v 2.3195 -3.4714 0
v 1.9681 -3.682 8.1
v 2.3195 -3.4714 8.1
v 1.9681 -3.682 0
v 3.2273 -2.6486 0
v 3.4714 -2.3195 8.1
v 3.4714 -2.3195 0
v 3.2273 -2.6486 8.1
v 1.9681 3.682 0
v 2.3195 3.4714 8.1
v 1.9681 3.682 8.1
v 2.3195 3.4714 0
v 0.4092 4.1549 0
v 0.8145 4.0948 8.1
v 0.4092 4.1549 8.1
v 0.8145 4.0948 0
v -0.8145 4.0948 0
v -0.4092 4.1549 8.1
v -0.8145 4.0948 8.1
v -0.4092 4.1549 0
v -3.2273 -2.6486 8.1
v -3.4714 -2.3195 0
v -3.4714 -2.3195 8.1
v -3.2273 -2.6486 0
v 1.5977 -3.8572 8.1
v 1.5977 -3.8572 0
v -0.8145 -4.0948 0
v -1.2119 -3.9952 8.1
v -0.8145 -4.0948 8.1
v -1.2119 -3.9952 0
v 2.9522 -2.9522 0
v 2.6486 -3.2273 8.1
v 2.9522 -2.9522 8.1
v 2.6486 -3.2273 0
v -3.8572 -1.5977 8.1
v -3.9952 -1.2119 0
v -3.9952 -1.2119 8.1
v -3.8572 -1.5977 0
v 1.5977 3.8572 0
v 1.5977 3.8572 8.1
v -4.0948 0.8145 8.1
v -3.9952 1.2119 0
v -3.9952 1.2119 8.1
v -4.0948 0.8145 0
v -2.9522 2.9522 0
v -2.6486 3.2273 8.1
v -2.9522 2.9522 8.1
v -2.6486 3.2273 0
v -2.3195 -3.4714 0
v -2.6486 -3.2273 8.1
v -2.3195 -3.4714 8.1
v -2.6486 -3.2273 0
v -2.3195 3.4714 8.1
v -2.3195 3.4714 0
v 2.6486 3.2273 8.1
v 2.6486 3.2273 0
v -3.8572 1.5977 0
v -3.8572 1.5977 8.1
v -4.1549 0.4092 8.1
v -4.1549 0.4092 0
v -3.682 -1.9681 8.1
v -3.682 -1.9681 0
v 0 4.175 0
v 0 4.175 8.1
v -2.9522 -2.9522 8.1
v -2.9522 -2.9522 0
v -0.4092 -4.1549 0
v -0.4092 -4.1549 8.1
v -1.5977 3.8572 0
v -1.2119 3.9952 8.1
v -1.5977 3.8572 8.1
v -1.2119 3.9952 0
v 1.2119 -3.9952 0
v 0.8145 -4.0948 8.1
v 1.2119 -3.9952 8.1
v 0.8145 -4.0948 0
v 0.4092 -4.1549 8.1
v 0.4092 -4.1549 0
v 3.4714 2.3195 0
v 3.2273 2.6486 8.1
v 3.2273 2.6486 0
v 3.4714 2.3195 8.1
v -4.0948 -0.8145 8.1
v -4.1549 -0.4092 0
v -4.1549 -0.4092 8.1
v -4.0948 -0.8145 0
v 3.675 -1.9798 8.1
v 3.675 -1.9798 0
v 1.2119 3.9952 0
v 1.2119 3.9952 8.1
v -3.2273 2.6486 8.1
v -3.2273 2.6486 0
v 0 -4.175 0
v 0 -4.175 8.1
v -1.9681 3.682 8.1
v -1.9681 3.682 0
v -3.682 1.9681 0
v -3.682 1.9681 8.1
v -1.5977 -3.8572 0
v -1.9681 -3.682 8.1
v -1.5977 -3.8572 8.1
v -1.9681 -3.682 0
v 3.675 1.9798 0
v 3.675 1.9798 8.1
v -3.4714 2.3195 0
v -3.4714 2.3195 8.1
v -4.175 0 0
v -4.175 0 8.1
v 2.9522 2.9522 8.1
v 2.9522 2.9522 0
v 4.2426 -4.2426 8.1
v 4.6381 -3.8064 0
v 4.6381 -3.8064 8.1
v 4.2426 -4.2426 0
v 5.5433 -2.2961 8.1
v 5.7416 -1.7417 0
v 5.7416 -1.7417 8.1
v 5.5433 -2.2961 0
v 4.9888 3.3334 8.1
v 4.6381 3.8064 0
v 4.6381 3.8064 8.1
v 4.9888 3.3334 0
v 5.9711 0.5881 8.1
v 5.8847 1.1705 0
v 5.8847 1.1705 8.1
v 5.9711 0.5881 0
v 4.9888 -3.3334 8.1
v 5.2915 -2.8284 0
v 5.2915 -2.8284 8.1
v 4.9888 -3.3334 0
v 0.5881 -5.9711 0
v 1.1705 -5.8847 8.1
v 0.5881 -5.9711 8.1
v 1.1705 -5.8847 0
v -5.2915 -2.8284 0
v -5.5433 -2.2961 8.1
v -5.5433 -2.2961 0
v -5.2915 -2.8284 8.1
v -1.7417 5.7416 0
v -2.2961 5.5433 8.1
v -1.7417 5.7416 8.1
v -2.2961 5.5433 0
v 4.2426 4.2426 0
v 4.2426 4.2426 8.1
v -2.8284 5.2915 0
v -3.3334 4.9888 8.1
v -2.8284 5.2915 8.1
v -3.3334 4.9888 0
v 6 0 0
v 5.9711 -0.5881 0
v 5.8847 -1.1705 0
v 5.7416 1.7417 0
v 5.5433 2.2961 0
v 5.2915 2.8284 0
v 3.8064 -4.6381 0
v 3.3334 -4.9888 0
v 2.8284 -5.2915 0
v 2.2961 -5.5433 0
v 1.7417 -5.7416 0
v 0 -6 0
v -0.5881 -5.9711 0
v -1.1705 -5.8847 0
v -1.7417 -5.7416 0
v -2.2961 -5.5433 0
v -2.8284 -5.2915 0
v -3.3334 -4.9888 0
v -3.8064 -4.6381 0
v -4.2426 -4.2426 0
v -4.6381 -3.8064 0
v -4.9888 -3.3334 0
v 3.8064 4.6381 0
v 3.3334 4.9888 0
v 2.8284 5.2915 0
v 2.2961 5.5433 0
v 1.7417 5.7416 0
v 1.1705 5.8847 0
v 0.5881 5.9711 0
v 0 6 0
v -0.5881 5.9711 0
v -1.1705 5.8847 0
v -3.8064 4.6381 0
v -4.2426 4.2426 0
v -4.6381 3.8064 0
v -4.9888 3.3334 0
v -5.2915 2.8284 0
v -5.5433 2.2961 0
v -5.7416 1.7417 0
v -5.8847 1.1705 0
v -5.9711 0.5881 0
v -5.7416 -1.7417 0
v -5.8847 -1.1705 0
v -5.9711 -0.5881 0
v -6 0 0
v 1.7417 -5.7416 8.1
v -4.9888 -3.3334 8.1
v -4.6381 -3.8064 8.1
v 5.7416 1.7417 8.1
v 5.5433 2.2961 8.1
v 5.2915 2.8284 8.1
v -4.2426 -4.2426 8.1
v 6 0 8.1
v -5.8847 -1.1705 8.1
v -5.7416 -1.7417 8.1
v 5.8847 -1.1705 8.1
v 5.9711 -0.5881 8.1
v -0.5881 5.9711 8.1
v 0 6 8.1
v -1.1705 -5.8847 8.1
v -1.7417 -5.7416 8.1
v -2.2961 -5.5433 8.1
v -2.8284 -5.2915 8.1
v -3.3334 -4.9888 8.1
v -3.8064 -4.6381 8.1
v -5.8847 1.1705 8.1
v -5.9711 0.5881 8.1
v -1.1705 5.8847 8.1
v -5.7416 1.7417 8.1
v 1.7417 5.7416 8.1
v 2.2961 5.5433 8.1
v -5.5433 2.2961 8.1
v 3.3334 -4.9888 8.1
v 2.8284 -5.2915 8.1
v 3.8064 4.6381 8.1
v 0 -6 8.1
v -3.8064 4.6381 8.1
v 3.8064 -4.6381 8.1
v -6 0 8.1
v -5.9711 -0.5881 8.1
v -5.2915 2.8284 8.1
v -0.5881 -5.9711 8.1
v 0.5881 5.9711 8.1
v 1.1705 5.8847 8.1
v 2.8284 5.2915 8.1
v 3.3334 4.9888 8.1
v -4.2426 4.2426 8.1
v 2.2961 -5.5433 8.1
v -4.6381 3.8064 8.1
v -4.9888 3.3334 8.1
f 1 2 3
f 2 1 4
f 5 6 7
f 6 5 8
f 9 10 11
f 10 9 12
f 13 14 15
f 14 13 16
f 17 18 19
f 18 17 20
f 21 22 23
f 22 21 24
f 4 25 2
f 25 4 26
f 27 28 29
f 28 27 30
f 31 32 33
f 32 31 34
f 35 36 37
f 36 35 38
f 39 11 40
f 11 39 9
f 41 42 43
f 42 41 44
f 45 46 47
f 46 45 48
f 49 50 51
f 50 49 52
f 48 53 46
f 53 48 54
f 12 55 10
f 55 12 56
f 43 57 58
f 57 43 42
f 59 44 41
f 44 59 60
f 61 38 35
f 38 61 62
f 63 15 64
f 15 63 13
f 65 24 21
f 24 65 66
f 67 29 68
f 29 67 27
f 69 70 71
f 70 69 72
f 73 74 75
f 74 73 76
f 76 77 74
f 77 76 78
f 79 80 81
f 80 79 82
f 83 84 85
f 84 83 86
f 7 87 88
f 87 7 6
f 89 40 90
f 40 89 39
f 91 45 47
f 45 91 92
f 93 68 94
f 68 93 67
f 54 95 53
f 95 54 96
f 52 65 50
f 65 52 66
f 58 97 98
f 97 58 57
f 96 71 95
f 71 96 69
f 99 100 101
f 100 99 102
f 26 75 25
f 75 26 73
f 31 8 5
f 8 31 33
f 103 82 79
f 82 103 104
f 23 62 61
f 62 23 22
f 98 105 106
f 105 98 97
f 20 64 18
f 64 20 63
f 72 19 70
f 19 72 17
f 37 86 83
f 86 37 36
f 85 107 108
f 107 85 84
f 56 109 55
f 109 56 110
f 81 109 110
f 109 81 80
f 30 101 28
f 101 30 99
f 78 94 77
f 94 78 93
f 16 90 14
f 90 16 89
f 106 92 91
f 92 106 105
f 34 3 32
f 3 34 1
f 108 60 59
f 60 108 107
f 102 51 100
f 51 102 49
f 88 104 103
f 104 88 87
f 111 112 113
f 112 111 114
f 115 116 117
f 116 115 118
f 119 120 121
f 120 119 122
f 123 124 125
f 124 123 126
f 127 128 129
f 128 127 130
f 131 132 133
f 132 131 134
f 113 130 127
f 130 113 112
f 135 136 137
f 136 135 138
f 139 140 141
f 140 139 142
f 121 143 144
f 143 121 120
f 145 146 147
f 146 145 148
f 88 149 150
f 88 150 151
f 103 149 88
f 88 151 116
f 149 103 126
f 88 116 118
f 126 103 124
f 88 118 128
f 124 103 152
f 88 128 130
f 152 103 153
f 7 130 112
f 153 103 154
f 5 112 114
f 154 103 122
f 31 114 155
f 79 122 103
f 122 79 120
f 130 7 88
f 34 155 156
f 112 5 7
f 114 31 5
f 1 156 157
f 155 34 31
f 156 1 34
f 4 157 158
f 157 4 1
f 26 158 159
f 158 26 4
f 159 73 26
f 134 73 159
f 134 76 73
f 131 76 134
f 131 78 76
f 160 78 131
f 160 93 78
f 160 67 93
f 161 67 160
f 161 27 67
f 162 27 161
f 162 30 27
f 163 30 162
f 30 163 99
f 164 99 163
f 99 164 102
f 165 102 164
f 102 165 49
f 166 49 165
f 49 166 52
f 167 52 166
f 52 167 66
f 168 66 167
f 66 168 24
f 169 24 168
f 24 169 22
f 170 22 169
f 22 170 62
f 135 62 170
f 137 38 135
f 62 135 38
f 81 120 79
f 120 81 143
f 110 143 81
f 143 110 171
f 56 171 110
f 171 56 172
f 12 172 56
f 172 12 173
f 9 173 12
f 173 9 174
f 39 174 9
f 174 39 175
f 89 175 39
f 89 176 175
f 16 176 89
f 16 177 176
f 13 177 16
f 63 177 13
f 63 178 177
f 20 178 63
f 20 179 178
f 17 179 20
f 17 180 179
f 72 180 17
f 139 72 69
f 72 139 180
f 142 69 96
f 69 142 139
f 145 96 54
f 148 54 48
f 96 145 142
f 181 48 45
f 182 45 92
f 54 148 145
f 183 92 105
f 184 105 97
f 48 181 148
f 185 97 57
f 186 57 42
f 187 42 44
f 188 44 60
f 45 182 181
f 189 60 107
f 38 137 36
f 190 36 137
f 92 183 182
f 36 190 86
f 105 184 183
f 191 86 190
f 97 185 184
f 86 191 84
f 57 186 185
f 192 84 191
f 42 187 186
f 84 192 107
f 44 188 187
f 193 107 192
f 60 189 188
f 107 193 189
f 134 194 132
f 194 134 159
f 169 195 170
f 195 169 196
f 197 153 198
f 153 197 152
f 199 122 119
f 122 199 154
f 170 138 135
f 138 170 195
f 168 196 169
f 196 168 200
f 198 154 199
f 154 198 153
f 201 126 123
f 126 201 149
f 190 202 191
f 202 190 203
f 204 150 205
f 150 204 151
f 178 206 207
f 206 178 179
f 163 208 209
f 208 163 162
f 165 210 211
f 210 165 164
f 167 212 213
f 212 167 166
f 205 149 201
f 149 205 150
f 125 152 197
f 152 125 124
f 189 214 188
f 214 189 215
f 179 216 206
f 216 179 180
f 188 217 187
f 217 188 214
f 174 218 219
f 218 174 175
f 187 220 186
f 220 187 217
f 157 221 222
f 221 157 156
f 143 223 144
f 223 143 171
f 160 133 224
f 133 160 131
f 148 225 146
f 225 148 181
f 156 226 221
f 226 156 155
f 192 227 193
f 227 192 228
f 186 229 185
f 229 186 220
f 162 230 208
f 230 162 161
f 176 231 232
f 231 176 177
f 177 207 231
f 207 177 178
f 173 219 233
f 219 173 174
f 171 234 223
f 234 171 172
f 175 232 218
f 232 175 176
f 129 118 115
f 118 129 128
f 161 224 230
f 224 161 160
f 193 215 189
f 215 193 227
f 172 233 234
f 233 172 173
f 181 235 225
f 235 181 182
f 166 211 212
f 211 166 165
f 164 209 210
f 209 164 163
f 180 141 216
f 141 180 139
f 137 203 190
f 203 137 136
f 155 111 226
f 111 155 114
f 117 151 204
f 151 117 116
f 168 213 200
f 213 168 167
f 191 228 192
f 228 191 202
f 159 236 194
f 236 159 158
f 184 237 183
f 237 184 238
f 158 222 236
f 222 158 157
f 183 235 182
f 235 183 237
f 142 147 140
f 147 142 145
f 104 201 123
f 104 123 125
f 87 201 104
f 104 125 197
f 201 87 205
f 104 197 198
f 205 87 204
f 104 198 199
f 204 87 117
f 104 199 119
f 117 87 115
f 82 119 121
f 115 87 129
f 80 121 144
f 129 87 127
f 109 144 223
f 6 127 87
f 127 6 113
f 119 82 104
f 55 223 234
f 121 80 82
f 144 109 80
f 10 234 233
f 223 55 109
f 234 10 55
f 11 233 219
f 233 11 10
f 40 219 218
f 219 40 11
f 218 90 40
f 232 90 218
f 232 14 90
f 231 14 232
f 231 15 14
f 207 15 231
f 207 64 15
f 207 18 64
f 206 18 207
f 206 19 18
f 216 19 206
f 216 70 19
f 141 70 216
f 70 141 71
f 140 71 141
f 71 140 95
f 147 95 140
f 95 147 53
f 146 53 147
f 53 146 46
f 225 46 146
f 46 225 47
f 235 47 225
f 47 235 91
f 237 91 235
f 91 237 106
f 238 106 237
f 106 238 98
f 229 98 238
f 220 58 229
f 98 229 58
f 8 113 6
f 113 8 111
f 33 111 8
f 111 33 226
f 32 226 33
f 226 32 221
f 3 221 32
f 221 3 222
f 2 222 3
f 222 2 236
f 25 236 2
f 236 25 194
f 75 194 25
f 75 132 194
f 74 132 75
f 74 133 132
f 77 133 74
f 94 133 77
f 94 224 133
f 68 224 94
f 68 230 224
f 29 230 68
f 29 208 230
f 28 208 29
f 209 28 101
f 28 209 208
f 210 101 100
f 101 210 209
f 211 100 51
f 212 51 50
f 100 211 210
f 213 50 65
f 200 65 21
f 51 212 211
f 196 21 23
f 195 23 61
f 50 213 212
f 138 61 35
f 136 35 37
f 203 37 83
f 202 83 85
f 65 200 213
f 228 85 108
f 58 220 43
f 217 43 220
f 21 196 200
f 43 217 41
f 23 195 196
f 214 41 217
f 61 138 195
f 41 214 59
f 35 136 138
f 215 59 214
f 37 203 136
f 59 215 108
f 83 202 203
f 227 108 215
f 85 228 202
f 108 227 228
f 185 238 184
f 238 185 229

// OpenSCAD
// Gen-DF — gap sleeve: rigid spacer on the shaft BETWEEN the two rotor carriers (passes through the stator
// hole). Length = m2m, so it sets the magnet gap and carries the full magnet pull. Print x1, upright.
include <parameters.scad>;
$fn = 64;
// D-flat keyed bore: flat faces +X (angle 0 = magnet pocket 0 = index notch)
module dflat_bore(h) {
    intersection() {
        cylinder(d=shaft_bore, h=h);
        translate([-shaft_bore, -shaft_bore, 0]) cube([shaft_bore + dflat_x, 2*shaft_bore, h]);
    }
}

difference() {
    cylinder(d=sleeve_od, h=m2m);
    translate([0, 0, -0.1]) dflat_bore(m2m + 0.2);
}
